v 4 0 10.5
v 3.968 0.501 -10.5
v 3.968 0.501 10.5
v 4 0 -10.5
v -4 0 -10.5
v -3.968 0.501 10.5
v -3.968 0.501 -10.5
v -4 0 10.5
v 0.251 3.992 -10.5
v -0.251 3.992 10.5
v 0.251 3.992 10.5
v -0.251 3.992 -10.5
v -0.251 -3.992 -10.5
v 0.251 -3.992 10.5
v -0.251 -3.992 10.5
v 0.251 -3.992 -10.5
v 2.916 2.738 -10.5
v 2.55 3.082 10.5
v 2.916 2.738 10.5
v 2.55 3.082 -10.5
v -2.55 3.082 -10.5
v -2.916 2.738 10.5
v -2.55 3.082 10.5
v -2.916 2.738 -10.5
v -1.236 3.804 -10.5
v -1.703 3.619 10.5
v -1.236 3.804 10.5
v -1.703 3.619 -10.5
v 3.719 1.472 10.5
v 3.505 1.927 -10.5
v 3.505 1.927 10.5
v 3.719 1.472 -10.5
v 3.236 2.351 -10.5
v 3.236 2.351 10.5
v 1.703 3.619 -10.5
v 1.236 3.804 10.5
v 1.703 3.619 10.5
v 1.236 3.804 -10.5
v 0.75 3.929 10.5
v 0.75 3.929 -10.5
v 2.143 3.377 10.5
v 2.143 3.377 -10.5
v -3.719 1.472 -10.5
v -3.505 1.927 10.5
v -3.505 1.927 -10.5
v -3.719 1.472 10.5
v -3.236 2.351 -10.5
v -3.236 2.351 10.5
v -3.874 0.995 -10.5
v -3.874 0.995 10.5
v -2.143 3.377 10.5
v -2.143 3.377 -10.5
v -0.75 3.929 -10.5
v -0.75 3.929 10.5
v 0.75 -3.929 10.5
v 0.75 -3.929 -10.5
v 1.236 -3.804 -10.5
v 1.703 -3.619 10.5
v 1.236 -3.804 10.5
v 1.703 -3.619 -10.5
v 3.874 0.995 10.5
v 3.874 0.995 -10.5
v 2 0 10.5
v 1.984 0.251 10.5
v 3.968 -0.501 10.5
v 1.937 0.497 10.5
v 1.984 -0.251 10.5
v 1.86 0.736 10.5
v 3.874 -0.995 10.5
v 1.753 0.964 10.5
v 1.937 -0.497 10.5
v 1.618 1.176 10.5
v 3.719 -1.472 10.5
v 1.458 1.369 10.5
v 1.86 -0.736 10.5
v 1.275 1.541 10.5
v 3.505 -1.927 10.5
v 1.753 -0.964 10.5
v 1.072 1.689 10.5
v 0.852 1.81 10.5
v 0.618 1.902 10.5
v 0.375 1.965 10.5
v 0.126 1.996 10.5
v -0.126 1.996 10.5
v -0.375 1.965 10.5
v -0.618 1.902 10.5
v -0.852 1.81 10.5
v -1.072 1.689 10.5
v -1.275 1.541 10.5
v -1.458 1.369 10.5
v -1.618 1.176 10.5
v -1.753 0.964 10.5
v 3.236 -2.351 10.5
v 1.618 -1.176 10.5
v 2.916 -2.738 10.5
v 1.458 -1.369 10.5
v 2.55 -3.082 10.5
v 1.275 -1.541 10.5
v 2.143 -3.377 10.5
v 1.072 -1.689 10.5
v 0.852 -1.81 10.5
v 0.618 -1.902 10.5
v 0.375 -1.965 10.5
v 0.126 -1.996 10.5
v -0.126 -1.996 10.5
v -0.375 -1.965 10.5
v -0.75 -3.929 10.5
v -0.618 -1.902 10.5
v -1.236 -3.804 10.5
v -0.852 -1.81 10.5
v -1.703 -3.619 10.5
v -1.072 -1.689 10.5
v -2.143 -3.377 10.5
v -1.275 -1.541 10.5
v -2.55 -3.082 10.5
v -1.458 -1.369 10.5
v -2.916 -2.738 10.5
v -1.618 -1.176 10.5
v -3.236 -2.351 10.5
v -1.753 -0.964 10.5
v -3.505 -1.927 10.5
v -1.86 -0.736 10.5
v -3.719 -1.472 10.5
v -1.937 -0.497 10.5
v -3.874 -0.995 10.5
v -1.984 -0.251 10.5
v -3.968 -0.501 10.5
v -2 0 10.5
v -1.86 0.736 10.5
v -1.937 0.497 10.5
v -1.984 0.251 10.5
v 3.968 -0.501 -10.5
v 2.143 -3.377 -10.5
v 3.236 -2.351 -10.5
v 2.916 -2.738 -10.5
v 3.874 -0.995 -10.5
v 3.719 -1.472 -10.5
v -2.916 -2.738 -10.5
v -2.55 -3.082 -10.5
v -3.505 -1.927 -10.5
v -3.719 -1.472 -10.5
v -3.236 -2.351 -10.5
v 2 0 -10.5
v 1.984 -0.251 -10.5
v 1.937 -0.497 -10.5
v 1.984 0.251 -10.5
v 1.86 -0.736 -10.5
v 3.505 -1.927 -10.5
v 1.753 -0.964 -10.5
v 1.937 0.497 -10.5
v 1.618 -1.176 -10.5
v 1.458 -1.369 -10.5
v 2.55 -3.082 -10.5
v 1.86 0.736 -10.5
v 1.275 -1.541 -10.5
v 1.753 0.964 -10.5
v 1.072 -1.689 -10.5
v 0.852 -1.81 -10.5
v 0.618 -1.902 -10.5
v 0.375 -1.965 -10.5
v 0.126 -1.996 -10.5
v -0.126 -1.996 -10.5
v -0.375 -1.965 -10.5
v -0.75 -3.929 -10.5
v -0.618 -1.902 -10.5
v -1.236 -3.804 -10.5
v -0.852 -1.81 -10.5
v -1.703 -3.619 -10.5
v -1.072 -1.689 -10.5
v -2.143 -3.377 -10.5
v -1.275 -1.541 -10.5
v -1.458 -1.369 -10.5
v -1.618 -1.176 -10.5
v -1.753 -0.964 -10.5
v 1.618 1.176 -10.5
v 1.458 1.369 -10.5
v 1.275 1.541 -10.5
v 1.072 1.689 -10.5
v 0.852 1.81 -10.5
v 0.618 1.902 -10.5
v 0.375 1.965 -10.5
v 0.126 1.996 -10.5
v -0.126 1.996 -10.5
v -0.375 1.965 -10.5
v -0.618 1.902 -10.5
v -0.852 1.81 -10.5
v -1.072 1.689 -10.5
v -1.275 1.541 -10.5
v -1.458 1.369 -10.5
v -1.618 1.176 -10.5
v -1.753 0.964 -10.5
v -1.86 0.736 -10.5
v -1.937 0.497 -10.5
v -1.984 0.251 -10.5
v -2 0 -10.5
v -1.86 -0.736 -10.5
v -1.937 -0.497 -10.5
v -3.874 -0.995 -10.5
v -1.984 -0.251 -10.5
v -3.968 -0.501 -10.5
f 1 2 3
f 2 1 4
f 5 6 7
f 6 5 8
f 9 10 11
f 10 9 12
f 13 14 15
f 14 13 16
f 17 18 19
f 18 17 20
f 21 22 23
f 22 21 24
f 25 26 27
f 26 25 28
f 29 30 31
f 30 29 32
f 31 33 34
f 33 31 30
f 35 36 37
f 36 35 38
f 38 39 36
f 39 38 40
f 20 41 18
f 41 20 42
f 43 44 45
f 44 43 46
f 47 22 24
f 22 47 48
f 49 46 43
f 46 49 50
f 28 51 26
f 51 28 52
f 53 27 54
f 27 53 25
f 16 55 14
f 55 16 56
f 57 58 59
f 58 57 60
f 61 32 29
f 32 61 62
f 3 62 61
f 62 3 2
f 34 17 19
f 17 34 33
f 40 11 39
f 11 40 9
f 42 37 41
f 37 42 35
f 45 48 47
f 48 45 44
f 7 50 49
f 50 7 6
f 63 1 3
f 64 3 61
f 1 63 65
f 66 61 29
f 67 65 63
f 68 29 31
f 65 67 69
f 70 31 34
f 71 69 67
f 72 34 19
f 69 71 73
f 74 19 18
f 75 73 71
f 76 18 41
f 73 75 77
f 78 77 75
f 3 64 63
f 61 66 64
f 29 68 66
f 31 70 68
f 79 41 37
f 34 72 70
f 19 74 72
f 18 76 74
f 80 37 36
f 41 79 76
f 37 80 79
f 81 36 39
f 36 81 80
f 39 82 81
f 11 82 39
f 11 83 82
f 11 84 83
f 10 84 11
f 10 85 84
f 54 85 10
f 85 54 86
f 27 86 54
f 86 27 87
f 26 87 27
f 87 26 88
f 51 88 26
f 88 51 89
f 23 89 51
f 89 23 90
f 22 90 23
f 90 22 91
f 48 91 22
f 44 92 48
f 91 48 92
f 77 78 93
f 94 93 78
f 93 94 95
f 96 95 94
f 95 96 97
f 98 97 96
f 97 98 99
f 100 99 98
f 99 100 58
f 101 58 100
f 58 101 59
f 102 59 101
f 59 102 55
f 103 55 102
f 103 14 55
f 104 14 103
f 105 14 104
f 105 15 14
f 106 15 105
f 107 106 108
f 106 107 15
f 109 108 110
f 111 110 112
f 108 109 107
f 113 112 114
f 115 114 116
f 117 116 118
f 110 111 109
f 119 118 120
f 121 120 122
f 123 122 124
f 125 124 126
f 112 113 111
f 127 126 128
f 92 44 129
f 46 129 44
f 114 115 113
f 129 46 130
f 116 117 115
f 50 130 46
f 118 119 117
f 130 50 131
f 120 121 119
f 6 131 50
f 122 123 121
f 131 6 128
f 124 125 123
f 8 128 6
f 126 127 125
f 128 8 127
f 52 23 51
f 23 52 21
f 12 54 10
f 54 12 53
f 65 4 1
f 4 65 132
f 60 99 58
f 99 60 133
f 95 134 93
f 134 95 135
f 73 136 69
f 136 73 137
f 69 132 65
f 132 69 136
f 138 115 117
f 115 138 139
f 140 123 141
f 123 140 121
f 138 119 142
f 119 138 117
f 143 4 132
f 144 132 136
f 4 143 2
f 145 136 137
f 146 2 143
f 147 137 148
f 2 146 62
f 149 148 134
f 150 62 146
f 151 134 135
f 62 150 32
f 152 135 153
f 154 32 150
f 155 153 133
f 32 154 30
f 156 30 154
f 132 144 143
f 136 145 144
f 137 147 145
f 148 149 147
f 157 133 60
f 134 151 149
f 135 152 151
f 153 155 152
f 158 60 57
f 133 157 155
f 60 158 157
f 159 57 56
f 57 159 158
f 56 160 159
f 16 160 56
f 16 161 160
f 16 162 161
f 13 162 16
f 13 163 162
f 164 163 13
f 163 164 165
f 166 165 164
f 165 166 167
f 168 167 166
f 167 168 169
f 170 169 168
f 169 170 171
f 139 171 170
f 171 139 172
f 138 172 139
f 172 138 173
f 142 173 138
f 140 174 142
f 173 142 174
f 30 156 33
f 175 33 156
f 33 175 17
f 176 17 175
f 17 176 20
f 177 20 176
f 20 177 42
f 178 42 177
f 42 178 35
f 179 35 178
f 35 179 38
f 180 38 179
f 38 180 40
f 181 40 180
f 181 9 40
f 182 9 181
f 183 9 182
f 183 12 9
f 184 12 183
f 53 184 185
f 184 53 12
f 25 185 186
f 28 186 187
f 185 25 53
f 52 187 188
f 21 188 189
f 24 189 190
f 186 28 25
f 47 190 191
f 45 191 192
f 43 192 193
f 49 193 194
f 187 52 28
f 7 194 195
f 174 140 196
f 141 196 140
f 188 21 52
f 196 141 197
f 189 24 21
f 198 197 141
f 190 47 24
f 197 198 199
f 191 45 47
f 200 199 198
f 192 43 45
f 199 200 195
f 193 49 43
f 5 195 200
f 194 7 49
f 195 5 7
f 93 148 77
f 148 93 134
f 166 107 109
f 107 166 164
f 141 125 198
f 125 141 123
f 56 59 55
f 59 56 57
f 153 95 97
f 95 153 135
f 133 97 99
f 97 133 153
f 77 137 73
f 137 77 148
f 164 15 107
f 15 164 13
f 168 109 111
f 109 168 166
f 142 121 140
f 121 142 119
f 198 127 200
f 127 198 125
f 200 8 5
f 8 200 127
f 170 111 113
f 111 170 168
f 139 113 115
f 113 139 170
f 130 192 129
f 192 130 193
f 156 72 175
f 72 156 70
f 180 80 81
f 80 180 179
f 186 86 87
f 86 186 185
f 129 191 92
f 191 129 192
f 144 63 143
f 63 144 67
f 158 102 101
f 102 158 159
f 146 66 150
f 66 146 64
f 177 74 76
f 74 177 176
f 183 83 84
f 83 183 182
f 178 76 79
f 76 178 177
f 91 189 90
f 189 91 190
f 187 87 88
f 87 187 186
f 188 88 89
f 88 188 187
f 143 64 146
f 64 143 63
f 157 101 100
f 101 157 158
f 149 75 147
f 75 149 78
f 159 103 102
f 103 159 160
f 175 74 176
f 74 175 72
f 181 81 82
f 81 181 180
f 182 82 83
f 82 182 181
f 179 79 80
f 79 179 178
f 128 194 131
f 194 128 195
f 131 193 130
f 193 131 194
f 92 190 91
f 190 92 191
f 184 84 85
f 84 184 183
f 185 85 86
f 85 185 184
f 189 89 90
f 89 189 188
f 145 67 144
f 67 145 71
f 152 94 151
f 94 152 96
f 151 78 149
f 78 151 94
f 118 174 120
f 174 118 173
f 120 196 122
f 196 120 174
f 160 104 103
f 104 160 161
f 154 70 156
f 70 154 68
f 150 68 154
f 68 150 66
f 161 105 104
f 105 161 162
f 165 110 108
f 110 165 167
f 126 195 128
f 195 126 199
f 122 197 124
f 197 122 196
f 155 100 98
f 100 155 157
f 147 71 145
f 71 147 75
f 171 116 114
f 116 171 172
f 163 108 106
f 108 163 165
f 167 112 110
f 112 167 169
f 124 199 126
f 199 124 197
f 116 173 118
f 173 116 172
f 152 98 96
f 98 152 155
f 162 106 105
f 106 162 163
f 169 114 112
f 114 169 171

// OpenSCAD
$fn = 50;


difference() {
	union() {
		translate(v = [0, 0, -10.5000000000]) {
			cylinder(h = 21, r = 4.0000000000);
		}
	}
	union() {
		translate(v = [0, 0, -100.0000000000]) {
			cylinder(h = 200, r = 2);
		}
	}
}
